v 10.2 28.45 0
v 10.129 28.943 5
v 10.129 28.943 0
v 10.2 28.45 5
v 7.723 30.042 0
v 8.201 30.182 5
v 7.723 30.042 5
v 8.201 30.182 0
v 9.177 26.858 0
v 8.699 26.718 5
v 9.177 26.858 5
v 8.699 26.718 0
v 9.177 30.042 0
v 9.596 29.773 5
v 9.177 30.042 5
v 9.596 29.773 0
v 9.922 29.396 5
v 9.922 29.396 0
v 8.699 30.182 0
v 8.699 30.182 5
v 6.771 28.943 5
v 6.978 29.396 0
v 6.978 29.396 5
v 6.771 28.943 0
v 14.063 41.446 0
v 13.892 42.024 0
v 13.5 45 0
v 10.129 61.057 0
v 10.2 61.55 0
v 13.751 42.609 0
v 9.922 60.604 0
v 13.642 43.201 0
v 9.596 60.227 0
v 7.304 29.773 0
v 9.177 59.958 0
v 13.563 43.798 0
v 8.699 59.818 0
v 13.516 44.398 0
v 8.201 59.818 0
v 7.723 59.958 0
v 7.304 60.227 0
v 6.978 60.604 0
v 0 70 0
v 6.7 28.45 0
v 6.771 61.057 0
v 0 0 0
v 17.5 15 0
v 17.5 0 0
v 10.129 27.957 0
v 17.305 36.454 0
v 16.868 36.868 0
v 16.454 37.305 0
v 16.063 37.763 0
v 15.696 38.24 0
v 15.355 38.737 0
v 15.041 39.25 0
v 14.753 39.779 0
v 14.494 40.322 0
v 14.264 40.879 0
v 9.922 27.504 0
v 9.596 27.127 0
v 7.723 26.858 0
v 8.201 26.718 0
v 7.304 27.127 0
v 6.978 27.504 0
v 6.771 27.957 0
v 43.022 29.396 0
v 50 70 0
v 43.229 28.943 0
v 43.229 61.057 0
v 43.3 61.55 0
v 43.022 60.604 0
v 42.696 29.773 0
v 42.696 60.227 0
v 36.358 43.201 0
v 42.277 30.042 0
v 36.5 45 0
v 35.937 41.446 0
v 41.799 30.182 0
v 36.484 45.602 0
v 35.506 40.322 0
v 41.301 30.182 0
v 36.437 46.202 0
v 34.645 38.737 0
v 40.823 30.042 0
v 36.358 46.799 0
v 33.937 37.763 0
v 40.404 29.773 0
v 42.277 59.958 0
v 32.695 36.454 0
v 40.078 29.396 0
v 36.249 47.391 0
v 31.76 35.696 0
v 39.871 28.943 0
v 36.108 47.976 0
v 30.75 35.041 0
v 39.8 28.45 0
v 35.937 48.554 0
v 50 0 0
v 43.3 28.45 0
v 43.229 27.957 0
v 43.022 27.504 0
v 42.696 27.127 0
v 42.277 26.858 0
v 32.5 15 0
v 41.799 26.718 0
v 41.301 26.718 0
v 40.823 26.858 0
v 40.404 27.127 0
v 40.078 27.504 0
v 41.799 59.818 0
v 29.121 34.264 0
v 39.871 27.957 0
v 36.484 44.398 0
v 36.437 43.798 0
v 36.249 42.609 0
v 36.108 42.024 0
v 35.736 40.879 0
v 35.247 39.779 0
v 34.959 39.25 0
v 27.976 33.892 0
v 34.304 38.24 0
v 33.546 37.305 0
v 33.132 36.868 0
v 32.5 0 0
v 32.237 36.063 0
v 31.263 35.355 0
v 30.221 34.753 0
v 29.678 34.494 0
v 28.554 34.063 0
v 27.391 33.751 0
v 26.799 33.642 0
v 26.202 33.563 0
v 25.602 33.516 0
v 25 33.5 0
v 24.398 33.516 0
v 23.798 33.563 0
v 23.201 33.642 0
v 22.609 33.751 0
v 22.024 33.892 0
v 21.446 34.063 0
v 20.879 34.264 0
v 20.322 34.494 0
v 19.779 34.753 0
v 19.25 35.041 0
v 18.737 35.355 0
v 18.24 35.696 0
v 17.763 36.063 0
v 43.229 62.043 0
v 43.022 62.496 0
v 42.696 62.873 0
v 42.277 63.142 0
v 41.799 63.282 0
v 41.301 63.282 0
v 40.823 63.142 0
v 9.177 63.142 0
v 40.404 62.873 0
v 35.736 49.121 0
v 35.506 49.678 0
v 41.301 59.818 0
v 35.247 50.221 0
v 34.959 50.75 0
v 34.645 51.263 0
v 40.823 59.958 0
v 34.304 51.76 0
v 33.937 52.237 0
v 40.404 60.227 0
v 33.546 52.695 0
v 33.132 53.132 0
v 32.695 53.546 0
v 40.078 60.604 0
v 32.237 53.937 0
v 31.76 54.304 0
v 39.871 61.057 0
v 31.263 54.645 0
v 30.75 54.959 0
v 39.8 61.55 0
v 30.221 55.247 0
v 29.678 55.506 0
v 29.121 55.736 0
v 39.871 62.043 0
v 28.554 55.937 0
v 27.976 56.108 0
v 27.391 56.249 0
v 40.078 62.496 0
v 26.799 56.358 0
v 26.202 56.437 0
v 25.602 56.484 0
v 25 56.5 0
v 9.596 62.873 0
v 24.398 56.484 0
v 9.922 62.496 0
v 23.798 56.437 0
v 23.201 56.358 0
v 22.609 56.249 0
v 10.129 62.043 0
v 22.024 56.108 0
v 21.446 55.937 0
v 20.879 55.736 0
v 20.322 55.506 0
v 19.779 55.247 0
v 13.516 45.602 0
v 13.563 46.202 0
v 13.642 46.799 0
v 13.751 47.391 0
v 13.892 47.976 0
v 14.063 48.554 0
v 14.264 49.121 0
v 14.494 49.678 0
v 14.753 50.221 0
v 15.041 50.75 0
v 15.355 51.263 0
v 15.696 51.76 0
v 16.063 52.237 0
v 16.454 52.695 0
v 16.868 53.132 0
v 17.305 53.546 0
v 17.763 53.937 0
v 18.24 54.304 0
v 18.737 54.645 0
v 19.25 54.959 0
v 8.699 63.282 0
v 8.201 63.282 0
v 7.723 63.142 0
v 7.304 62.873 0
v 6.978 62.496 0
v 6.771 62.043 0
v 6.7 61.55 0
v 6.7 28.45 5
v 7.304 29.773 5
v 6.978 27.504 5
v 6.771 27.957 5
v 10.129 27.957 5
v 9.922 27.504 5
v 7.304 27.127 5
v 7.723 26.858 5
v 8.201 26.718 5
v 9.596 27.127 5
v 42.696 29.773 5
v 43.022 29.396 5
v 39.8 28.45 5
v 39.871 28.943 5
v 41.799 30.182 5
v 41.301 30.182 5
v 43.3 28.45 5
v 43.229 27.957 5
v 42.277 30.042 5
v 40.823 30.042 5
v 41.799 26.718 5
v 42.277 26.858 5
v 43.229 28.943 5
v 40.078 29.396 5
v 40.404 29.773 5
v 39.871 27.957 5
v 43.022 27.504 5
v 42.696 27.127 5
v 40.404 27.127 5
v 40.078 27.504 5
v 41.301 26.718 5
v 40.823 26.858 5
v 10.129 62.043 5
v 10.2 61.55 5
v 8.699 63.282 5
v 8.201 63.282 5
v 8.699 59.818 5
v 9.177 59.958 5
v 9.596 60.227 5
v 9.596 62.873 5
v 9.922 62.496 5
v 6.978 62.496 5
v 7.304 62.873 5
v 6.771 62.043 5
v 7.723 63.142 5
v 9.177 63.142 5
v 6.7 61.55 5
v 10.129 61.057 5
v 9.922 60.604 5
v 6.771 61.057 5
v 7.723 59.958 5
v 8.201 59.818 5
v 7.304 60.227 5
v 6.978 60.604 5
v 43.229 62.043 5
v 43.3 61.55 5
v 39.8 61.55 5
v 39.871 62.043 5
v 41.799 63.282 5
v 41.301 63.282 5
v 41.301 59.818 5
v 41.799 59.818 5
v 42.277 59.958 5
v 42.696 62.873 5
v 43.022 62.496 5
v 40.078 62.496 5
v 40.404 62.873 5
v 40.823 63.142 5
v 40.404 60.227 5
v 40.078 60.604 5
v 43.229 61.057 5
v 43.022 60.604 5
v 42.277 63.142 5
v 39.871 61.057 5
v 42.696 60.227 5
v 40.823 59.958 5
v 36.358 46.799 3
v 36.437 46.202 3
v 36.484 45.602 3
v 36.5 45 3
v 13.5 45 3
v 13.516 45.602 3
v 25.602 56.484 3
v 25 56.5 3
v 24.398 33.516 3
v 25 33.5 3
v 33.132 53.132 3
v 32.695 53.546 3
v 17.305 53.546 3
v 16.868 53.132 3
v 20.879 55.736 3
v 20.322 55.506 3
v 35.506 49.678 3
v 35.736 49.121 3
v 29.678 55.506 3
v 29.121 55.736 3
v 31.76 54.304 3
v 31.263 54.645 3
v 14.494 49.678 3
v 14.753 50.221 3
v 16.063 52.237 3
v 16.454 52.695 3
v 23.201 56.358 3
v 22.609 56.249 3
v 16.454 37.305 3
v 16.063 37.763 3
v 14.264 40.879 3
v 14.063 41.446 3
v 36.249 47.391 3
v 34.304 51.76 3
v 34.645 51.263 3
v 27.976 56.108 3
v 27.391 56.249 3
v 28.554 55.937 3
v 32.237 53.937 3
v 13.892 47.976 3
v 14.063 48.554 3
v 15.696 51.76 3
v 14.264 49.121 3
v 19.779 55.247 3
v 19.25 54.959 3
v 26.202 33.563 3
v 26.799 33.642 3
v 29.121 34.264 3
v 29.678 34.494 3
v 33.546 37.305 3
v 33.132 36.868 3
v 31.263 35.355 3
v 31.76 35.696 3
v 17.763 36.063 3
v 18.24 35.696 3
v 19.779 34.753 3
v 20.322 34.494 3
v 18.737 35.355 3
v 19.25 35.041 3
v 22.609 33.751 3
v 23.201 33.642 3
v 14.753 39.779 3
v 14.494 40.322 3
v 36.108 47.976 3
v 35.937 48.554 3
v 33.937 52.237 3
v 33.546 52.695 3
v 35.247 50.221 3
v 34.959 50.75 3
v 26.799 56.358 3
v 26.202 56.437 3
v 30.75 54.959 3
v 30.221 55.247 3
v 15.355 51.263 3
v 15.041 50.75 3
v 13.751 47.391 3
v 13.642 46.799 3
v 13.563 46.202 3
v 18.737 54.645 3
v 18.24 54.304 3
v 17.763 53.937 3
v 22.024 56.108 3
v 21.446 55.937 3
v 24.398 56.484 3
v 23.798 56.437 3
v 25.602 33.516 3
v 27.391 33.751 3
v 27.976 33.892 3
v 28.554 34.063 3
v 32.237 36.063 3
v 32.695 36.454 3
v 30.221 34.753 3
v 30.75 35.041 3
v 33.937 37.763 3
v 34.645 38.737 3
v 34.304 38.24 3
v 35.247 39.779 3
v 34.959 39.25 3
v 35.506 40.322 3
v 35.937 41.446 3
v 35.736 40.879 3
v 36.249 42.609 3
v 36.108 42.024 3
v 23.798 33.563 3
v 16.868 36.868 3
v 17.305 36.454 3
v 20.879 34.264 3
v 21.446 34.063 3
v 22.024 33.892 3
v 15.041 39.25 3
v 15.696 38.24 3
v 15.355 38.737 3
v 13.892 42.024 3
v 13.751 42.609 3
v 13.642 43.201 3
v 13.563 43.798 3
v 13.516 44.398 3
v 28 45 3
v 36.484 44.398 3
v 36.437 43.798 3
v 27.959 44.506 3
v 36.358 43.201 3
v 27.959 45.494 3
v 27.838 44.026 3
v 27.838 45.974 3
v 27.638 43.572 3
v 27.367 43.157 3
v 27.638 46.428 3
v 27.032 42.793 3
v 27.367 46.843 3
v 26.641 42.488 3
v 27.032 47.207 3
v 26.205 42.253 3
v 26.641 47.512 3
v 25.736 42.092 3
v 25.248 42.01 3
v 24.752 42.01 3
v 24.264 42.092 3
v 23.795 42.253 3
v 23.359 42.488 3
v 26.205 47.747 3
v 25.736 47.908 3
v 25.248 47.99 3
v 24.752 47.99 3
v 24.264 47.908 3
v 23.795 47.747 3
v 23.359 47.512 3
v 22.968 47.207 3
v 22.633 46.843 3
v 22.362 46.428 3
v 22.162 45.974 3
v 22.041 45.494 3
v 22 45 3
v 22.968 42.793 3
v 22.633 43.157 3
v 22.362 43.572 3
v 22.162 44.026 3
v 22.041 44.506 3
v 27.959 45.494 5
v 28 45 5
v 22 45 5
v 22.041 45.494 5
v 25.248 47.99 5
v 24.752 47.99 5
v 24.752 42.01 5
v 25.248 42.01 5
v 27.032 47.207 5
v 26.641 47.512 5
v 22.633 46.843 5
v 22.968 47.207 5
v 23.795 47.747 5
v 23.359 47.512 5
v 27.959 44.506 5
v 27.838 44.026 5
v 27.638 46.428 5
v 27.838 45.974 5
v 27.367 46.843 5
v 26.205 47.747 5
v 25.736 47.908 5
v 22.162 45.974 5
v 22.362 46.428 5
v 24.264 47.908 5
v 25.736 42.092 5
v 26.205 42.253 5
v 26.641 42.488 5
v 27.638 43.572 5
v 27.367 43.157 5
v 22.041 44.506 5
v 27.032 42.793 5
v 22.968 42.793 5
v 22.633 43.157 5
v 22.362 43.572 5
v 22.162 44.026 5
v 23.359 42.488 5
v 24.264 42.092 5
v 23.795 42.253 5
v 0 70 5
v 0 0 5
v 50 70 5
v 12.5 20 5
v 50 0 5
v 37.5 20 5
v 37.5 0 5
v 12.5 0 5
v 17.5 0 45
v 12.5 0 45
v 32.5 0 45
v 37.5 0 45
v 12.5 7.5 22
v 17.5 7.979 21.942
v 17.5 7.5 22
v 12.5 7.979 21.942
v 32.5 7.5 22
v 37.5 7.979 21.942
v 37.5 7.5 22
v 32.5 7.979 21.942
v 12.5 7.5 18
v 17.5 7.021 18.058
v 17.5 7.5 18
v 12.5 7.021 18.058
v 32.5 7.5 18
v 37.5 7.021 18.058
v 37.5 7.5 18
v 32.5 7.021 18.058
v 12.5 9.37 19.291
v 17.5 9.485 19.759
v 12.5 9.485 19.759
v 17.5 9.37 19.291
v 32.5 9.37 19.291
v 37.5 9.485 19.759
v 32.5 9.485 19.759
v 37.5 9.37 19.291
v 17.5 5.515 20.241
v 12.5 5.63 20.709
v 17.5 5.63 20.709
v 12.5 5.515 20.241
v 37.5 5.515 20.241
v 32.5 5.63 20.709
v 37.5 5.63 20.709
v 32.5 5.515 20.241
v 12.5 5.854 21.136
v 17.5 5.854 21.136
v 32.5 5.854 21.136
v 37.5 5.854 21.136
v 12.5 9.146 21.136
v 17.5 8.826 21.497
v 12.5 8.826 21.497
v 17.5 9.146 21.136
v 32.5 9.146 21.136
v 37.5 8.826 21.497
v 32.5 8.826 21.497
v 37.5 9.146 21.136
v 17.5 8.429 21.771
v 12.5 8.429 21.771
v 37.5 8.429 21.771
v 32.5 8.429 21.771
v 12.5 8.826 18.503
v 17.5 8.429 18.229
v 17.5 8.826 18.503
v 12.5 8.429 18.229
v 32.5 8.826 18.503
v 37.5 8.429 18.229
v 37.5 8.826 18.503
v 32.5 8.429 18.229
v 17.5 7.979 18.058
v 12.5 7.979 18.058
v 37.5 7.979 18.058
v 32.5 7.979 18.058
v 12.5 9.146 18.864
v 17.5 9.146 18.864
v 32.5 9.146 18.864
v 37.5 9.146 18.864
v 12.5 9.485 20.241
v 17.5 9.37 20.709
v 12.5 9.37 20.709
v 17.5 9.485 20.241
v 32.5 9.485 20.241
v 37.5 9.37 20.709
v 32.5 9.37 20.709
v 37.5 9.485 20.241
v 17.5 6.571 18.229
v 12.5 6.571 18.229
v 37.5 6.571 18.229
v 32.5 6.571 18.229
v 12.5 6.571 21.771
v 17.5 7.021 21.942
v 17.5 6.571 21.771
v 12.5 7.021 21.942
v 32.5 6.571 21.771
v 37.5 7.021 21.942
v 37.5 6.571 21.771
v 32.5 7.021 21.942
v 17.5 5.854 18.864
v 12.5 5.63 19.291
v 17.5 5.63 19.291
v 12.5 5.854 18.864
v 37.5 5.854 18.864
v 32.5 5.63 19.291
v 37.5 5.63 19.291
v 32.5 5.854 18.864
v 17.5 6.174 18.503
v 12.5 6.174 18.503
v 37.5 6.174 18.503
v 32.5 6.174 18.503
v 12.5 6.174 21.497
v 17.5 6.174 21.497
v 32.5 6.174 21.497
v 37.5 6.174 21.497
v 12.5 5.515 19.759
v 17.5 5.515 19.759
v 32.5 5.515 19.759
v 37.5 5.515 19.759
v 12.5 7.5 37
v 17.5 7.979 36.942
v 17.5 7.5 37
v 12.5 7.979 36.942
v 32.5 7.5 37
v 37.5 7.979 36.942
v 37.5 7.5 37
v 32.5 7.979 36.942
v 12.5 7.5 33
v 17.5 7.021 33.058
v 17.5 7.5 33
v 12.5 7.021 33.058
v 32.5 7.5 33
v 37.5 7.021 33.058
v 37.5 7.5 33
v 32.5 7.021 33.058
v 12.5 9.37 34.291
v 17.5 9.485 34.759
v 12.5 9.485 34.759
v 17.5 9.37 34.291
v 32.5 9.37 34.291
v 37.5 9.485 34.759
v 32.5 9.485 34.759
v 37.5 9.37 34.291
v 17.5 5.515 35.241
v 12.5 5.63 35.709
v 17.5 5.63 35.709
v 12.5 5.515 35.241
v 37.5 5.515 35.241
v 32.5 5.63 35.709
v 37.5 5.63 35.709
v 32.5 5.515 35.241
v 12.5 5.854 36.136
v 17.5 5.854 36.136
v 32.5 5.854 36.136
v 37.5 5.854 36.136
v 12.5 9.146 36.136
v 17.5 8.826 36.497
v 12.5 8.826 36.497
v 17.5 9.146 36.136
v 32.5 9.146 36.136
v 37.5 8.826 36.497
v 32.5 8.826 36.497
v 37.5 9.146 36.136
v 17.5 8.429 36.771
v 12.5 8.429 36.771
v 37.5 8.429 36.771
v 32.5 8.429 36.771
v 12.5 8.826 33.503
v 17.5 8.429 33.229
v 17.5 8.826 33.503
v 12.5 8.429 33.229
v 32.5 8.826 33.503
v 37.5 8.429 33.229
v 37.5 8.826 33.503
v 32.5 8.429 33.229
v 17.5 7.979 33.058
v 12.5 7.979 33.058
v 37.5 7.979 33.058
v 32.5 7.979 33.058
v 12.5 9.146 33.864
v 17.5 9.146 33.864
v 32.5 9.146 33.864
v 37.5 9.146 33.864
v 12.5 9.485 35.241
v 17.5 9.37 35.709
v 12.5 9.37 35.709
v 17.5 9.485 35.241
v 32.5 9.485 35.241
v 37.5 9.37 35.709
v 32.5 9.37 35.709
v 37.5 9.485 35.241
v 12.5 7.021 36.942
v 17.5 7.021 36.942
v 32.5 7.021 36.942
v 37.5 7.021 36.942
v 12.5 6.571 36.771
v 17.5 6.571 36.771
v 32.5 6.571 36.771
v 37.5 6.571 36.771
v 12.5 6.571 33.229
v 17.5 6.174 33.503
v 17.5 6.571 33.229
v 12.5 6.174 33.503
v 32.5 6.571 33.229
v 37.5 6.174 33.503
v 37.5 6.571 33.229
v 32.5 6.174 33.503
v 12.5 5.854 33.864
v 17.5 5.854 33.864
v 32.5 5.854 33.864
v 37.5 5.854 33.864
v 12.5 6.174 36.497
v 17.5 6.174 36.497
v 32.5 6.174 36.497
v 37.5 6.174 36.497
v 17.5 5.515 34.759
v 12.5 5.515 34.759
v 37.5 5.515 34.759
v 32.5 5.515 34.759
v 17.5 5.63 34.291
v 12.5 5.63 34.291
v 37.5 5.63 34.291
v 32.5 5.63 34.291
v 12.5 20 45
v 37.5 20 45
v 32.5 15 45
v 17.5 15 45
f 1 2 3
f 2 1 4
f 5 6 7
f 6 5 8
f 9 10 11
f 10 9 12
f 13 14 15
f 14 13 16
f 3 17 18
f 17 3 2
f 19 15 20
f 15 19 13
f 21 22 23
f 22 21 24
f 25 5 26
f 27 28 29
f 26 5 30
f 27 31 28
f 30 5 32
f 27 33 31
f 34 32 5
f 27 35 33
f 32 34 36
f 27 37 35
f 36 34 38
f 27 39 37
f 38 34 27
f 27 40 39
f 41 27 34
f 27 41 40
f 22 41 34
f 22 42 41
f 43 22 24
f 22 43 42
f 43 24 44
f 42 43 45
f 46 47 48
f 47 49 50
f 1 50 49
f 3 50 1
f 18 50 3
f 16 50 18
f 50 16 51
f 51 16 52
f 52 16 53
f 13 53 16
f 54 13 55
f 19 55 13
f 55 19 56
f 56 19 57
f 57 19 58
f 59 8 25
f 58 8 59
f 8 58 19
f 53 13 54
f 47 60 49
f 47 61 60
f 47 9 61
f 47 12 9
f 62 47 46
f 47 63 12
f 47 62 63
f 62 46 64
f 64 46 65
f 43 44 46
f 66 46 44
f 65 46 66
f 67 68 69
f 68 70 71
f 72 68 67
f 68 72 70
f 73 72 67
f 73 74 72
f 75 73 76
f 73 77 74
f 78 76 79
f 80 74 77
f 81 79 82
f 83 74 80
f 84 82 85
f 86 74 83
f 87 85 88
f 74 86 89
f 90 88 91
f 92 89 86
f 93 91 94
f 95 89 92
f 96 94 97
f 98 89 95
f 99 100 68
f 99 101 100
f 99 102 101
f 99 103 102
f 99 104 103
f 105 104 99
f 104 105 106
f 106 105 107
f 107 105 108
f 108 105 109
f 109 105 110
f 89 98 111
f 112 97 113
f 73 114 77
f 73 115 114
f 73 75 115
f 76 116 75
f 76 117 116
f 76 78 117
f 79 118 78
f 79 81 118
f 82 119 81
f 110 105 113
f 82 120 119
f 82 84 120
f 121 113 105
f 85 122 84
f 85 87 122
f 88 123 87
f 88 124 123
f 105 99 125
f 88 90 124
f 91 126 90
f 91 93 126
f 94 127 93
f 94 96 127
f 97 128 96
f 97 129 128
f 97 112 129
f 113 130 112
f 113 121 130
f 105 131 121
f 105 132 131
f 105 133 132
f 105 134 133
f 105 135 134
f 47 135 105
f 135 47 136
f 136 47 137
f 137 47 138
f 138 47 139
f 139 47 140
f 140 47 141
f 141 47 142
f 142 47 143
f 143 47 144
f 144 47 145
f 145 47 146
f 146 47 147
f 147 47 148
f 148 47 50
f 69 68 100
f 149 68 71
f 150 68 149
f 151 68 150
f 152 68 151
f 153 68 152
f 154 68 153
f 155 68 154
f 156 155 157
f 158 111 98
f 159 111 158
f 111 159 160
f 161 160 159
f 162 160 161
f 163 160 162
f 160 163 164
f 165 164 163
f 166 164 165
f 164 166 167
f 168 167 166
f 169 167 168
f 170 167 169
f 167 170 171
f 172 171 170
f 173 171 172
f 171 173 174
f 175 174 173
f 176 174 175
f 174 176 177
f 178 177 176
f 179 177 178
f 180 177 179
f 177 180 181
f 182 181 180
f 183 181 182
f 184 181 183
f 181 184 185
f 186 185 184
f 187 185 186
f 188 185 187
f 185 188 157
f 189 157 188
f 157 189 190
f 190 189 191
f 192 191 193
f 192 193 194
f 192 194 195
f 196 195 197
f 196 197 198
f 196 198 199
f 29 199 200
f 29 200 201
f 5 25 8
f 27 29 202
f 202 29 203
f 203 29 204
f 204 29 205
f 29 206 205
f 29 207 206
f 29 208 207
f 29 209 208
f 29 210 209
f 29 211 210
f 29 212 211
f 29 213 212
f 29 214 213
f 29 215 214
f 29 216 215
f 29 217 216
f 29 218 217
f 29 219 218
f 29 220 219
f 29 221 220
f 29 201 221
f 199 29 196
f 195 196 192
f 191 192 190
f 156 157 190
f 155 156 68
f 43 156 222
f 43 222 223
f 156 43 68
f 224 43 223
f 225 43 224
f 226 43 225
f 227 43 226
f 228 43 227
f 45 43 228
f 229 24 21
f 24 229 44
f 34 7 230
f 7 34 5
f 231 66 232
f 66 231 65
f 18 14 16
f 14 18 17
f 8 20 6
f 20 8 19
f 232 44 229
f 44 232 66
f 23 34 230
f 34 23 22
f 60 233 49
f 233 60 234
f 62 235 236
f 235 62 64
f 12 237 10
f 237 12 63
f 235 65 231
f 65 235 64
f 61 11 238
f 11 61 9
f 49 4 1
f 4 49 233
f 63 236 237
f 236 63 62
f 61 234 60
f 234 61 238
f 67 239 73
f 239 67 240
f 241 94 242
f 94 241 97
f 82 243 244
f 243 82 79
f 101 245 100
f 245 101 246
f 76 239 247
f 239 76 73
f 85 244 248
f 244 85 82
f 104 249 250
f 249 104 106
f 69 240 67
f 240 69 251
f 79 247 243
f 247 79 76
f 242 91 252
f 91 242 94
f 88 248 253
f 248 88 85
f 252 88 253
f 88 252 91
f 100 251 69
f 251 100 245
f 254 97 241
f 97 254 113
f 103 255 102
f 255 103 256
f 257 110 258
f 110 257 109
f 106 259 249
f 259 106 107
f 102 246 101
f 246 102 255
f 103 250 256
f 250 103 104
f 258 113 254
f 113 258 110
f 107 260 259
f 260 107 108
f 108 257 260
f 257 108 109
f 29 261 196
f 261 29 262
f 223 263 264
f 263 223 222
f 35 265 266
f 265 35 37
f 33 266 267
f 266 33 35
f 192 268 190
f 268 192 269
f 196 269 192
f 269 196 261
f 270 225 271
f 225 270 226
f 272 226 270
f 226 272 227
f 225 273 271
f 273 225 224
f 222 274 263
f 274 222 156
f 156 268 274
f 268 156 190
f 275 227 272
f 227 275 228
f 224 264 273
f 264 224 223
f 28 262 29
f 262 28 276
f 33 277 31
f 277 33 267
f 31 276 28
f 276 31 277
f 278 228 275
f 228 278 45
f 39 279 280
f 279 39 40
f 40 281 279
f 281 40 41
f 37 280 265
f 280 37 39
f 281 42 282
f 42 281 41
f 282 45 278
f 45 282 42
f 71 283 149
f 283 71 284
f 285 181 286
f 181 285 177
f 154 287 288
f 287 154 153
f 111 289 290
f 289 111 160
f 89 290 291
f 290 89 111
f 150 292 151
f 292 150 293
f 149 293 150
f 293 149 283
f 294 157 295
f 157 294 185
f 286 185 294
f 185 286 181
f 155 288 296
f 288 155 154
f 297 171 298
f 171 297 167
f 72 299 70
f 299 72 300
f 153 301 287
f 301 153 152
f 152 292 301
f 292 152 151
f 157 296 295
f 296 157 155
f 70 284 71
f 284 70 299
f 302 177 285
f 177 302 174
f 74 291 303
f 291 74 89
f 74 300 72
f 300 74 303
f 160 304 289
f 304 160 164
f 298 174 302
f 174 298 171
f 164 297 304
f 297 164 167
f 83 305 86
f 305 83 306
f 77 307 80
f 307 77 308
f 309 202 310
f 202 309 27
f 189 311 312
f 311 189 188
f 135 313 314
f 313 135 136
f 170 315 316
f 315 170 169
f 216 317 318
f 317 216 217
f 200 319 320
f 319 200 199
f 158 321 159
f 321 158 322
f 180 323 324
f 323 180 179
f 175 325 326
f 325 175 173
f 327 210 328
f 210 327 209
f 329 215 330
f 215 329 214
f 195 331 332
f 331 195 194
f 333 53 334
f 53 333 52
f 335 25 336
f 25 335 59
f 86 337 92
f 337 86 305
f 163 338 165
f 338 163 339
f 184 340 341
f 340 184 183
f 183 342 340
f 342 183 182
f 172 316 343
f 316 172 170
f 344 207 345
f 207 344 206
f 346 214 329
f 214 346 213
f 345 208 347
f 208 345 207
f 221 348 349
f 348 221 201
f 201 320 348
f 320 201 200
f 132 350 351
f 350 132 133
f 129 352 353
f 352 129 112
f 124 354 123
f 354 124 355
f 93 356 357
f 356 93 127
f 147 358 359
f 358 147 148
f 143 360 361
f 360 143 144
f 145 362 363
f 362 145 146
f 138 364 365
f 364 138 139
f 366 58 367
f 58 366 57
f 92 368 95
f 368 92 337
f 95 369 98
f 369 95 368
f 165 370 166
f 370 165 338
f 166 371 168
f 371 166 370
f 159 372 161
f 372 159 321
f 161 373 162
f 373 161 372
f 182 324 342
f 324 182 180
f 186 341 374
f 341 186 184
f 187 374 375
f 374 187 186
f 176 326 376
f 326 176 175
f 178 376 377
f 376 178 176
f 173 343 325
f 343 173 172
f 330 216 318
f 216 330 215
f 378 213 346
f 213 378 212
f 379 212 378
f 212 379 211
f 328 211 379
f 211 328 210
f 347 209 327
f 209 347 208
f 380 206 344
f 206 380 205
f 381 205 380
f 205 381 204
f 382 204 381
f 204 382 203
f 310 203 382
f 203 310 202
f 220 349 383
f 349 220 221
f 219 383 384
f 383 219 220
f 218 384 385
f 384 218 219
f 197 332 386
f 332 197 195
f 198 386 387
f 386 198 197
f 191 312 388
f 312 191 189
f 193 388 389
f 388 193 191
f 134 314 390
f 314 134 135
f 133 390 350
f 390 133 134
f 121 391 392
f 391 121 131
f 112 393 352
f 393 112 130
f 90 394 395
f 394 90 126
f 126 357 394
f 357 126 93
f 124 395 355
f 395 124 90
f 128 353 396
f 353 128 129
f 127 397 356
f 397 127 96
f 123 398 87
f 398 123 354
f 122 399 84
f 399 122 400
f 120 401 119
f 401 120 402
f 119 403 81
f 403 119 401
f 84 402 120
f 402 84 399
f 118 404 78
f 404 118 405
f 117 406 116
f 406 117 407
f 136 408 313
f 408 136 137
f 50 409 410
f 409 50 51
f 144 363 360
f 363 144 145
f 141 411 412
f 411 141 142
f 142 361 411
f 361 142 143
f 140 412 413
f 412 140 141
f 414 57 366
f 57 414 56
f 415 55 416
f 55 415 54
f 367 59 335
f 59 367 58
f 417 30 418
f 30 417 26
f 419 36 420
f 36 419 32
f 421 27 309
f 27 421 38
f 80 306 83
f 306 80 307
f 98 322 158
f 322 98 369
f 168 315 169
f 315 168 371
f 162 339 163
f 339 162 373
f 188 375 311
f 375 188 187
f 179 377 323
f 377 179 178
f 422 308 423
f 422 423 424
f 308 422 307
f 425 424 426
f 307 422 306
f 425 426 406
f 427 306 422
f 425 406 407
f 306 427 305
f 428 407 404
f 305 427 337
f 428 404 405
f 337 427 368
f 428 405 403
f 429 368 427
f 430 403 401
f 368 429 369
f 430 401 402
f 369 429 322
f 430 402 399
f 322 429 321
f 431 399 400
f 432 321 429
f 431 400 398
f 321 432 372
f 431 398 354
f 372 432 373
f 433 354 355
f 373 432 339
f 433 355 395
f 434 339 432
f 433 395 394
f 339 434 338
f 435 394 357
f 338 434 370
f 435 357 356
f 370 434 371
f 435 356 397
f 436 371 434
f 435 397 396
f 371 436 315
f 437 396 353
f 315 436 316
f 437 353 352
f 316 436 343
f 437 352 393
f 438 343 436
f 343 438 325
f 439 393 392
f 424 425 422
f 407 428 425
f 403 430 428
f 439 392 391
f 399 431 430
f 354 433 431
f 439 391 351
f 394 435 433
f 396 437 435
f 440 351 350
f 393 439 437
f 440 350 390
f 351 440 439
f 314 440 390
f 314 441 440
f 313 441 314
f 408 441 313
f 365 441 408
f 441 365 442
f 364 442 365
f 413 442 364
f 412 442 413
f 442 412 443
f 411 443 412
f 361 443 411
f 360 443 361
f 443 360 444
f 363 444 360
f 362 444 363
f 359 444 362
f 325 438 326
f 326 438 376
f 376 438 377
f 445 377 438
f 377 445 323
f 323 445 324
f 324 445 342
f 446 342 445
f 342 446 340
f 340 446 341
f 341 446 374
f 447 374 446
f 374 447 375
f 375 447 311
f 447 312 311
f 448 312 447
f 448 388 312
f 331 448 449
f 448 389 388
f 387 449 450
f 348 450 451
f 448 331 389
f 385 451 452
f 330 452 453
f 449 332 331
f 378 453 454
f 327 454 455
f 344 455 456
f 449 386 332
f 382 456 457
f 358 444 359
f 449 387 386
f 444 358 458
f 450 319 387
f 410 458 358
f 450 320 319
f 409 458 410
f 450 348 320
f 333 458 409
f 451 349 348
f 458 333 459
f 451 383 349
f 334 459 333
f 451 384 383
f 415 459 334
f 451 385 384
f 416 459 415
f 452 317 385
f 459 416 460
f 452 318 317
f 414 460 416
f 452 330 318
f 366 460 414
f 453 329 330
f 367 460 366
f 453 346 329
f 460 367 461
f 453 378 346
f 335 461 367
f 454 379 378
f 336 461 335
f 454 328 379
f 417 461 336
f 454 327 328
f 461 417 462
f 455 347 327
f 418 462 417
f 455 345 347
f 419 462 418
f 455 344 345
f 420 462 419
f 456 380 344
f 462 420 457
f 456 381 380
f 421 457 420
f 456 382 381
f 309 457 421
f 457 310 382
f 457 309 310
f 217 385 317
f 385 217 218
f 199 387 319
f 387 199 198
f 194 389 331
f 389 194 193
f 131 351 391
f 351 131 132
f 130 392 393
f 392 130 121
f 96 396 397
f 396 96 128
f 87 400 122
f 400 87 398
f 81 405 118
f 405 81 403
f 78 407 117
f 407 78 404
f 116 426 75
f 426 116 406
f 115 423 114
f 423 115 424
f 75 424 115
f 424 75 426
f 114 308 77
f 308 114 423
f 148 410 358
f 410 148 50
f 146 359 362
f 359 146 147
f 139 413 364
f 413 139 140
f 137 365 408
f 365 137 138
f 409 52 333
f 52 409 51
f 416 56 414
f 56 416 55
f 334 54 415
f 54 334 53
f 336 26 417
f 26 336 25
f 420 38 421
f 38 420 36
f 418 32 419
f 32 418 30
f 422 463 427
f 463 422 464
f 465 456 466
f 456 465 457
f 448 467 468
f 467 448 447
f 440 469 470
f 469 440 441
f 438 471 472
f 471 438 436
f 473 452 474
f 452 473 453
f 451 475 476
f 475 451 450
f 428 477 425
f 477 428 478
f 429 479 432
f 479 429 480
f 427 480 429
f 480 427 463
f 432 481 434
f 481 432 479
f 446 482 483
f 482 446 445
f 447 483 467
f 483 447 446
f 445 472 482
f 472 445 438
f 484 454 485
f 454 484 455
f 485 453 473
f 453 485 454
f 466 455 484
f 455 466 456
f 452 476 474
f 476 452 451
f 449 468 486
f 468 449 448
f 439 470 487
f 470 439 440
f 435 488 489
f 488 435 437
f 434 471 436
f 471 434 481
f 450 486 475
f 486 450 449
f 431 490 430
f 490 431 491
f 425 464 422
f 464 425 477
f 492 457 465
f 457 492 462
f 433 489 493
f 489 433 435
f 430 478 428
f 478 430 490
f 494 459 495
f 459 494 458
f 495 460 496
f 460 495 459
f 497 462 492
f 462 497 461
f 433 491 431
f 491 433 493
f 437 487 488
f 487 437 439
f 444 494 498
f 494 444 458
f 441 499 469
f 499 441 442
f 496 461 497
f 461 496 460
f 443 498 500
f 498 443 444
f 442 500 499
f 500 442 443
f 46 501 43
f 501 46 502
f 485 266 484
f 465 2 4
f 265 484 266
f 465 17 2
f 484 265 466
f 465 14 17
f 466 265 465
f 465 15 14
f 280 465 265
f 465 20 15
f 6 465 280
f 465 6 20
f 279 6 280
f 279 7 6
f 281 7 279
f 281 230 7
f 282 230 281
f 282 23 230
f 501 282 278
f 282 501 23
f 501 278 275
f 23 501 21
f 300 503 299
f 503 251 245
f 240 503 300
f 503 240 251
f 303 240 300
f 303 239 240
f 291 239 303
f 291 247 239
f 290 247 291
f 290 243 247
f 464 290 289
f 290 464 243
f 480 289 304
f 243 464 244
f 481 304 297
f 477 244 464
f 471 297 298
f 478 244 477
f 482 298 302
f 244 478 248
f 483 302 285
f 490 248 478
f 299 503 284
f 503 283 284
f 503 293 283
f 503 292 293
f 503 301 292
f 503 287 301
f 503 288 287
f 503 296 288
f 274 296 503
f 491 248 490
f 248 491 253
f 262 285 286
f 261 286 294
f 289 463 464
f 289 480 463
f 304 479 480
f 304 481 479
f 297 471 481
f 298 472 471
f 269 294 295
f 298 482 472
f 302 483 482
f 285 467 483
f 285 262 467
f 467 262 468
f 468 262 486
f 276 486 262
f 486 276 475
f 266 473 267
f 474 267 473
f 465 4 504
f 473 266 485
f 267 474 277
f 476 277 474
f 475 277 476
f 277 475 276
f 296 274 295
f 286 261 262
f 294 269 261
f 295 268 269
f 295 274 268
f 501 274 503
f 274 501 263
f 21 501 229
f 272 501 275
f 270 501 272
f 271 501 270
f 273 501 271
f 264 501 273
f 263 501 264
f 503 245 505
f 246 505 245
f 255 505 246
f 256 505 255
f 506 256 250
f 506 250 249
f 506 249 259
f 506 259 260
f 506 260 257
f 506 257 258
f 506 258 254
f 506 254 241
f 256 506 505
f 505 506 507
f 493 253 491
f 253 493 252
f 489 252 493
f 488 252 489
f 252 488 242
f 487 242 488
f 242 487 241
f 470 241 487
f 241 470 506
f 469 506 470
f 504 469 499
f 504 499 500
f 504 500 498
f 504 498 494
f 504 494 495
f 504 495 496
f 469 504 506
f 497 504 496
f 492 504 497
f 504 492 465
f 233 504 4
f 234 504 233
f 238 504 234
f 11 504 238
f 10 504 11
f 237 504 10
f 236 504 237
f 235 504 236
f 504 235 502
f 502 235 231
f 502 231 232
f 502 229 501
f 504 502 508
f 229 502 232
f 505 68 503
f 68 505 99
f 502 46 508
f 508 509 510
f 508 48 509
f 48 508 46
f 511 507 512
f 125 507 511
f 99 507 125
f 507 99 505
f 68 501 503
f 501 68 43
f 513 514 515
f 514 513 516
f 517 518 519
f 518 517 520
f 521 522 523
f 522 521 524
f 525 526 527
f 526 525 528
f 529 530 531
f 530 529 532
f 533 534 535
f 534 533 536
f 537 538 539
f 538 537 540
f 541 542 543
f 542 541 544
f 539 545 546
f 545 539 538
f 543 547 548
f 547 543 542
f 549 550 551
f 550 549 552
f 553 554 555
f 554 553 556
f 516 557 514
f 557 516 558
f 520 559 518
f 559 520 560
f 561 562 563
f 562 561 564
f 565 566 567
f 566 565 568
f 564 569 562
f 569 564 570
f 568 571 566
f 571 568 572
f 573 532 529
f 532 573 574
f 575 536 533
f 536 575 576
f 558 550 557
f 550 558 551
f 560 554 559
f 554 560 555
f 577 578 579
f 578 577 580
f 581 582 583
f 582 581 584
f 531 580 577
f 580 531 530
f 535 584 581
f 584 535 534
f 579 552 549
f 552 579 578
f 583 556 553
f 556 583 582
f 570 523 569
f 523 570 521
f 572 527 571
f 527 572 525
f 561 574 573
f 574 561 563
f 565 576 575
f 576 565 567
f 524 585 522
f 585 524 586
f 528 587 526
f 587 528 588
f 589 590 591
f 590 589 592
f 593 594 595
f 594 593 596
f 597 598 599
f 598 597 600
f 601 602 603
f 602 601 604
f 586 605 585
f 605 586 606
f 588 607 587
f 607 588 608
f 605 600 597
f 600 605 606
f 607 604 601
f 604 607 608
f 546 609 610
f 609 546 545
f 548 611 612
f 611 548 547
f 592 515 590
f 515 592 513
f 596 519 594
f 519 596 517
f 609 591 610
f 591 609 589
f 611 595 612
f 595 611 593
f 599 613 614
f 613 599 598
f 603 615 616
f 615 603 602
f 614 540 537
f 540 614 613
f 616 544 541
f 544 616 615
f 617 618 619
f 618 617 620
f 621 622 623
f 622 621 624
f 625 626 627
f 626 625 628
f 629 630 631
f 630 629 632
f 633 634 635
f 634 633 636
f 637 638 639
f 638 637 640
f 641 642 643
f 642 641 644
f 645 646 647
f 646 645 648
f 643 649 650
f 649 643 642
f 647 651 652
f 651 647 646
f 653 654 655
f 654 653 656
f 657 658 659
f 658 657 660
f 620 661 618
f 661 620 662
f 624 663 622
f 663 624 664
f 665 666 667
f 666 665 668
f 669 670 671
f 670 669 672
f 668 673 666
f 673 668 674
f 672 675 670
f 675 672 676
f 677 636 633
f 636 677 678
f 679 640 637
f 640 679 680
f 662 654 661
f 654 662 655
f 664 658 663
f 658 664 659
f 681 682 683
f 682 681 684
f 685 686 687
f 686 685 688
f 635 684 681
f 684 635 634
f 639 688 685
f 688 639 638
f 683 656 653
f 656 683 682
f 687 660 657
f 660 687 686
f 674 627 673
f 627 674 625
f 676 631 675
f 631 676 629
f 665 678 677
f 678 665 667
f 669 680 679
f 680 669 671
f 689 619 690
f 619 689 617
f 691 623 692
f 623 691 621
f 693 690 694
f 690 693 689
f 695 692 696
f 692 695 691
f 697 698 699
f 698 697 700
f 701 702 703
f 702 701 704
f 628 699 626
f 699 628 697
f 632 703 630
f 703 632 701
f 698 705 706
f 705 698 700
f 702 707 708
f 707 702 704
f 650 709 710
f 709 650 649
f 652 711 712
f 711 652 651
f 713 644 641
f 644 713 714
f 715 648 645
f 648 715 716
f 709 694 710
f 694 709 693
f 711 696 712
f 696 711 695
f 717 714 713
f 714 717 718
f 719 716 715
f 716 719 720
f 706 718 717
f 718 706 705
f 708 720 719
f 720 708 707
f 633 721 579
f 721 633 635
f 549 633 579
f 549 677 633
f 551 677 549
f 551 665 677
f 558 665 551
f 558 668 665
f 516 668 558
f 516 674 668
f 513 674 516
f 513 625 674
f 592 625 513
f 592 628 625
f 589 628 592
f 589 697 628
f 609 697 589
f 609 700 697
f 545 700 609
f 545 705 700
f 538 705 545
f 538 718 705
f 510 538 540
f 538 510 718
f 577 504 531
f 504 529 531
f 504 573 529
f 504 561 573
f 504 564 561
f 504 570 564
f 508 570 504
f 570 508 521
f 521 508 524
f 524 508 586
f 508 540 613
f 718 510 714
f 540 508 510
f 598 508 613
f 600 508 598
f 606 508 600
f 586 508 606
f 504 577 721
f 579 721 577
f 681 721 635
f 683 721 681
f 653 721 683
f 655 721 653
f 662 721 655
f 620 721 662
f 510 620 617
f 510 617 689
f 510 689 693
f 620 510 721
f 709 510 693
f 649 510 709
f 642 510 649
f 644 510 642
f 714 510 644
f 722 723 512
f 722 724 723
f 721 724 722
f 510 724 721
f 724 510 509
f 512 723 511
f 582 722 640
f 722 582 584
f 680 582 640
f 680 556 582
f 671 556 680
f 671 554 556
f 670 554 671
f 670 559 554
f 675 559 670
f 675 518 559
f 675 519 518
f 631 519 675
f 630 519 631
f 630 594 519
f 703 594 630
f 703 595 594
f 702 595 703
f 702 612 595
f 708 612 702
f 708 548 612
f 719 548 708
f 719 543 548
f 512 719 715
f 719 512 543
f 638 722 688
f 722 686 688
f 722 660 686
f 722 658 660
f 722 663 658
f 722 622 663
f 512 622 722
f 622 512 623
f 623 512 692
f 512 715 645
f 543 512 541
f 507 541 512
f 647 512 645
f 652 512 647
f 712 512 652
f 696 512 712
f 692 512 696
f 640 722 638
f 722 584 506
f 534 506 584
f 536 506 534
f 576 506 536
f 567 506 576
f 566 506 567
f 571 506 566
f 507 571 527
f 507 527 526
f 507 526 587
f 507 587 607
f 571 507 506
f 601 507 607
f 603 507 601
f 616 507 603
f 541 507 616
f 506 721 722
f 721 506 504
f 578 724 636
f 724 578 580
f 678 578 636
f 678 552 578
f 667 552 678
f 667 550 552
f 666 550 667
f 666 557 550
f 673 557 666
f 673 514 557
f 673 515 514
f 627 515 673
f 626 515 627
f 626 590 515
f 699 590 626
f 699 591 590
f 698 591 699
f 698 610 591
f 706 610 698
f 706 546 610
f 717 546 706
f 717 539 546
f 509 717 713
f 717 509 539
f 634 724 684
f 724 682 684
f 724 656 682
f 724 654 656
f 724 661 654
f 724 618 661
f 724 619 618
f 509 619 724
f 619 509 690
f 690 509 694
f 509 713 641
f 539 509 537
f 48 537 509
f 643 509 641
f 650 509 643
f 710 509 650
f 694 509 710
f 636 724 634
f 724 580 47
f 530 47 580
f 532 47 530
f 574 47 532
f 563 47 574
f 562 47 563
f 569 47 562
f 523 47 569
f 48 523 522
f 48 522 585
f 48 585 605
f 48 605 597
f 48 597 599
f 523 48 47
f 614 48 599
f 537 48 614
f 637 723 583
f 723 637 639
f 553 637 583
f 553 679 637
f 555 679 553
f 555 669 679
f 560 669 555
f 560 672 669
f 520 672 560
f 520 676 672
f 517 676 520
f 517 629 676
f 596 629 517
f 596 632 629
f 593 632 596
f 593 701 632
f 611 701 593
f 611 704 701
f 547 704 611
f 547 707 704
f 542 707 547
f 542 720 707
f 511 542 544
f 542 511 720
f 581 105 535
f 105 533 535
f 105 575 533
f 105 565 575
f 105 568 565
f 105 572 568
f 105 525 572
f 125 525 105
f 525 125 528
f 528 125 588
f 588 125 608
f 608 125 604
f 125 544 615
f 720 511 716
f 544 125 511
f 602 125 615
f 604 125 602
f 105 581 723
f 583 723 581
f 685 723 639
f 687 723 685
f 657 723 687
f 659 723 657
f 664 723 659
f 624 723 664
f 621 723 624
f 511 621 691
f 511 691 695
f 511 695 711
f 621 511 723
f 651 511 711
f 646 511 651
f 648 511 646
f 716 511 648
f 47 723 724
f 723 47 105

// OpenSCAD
// file: NemaMounts.scad
m3Diam=3.5;

module nema17Mount (depth) {
	union() {
		translate([-33.1/2, -33.1/2, 0])
			cylinder (h=depth,d=m3Diam);
		
		translate([33.1/2, -33.1/2, 0])
			cylinder (h=depth,d=m3Diam);
		
		translate([-33.1/2, 33.1/2, 0])
			cylinder (h=depth,d=m3Diam);
   
		translate([33.1/2, 33.1/2, 0])
			cylinder (h=depth,d=m3Diam);
		cylinder(h=3, d=23);
		cylinder(h=depth, d=6);
	}
}

module slideyMount (length=10) {
	for (i=[0:$children-1]) {
		hull() {
			translate([-length/2,0,0]) children(i);
			translate([length/2,0,0]) children(i);
		}
	}
}

module slideyNema17Mount(length, depth) {
	slideyMount(length) {
		translate([-33.1/2, -33.1/2, 0])
			cylinder (h=depth,d=m3Diam);
		
		translate([33.1/2, -33.1/2, 0])
			cylinder (h=depth,d=m3Diam);
		
		translate([-33.1/2, 33.1/2, 0])
			cylinder (h=depth,d=m3Diam);
   
		translate([33.1/2, 33.1/2, 0])
			cylinder (h=depth,d=m3Diam);
		cylinder(h=3, d=23);
		cylinder(h=depth, d=6);
	}
}
// file: Parameters.scad
/* Frame and Hardware Parameters */
bracketThickness = 5;
extrusionThickness = 15;
narrowScrewHoleSpacing = 15;
wideScrewHoleSpacing = 30;
screwHoleDiam = 4;

/* Design Parameters */
XYSpacing = 20;

/* Gear Parameters */
gearDiam = 50;


/* 608 Bearing Mount Parameters */
bearingHolderWallThickness = 3;
bearingHolderWallHeight = 4;
bearingRadius = 11;

/* top bracket parameters */
gearSpacing = 10; // spacing between gear and extrusion
exteriorSpace = 10; // spacing beyond the bearing mount

/* lower bracket parameters */
footHeight = 10;
footDimension = bracketThickness + extrusionThickness;
bracketInnerDimension = 30;

/* nema mount size */
nemaMountSize = 40;

$fs = .5;
$fa = 3;
// main file
include <Parameters.scad>
include <NemaMounts.scad>

module nema17MountFace(){
	difference(){
		cube([nemaMountSize + 2 * bracketThickness,nemaMountSize + 3 * bracketThickness + extrusionThickness,bracketThickness], [0,0,bracketThickness / 2]);
		translate([nemaMountSize / 2 + 5, nemaMountSize / 2 + extrusionThickness + 2 * bracketThickness, 0]){
			nema17Mount(bracketThickness * 2);
		}
	}
}

module mountBar(){
	difference(){
		cube([2 * bracketThickness + extrusionThickness, bracketThickness + extrusionThickness, 3 * narrowScrewHoleSpacing], [0, 0, bracketThickness]);
		rotate([0,270,0]){
			screwHole(bracketThickness + narrowScrewHoleSpacing);
			screwHole(bracketThickness + 2 * narrowScrewHoleSpacing);
		}
	}
}

module screwHole(xSpacing){
	translate([xSpacing, extrusionThickness / 2, -3 * bracketThickness - extrusionThickness]){	
		cylinder(3 * bracketThickness + extrusionThickness, screwHoleDiam / 2, screwHoleDiam / 2, 0);
	}
}

module extrusionCube(height) {
	cube([extrusionThickness, extrusionThickness, height], 0);
} 

difference(){
	union(){
		nema17MountFace();
		translate([nemaMountSize / 2 - extrusionThickness / 2,0,0]){
			mountBar();
		}
	}
	translate([nemaMountSize / 2 + bracketThickness - extrusionThickness / 2,0,0]){
		extrusionCube(bracketThickness + 3 * narrowScrewHoleSpacing);
	}
}
